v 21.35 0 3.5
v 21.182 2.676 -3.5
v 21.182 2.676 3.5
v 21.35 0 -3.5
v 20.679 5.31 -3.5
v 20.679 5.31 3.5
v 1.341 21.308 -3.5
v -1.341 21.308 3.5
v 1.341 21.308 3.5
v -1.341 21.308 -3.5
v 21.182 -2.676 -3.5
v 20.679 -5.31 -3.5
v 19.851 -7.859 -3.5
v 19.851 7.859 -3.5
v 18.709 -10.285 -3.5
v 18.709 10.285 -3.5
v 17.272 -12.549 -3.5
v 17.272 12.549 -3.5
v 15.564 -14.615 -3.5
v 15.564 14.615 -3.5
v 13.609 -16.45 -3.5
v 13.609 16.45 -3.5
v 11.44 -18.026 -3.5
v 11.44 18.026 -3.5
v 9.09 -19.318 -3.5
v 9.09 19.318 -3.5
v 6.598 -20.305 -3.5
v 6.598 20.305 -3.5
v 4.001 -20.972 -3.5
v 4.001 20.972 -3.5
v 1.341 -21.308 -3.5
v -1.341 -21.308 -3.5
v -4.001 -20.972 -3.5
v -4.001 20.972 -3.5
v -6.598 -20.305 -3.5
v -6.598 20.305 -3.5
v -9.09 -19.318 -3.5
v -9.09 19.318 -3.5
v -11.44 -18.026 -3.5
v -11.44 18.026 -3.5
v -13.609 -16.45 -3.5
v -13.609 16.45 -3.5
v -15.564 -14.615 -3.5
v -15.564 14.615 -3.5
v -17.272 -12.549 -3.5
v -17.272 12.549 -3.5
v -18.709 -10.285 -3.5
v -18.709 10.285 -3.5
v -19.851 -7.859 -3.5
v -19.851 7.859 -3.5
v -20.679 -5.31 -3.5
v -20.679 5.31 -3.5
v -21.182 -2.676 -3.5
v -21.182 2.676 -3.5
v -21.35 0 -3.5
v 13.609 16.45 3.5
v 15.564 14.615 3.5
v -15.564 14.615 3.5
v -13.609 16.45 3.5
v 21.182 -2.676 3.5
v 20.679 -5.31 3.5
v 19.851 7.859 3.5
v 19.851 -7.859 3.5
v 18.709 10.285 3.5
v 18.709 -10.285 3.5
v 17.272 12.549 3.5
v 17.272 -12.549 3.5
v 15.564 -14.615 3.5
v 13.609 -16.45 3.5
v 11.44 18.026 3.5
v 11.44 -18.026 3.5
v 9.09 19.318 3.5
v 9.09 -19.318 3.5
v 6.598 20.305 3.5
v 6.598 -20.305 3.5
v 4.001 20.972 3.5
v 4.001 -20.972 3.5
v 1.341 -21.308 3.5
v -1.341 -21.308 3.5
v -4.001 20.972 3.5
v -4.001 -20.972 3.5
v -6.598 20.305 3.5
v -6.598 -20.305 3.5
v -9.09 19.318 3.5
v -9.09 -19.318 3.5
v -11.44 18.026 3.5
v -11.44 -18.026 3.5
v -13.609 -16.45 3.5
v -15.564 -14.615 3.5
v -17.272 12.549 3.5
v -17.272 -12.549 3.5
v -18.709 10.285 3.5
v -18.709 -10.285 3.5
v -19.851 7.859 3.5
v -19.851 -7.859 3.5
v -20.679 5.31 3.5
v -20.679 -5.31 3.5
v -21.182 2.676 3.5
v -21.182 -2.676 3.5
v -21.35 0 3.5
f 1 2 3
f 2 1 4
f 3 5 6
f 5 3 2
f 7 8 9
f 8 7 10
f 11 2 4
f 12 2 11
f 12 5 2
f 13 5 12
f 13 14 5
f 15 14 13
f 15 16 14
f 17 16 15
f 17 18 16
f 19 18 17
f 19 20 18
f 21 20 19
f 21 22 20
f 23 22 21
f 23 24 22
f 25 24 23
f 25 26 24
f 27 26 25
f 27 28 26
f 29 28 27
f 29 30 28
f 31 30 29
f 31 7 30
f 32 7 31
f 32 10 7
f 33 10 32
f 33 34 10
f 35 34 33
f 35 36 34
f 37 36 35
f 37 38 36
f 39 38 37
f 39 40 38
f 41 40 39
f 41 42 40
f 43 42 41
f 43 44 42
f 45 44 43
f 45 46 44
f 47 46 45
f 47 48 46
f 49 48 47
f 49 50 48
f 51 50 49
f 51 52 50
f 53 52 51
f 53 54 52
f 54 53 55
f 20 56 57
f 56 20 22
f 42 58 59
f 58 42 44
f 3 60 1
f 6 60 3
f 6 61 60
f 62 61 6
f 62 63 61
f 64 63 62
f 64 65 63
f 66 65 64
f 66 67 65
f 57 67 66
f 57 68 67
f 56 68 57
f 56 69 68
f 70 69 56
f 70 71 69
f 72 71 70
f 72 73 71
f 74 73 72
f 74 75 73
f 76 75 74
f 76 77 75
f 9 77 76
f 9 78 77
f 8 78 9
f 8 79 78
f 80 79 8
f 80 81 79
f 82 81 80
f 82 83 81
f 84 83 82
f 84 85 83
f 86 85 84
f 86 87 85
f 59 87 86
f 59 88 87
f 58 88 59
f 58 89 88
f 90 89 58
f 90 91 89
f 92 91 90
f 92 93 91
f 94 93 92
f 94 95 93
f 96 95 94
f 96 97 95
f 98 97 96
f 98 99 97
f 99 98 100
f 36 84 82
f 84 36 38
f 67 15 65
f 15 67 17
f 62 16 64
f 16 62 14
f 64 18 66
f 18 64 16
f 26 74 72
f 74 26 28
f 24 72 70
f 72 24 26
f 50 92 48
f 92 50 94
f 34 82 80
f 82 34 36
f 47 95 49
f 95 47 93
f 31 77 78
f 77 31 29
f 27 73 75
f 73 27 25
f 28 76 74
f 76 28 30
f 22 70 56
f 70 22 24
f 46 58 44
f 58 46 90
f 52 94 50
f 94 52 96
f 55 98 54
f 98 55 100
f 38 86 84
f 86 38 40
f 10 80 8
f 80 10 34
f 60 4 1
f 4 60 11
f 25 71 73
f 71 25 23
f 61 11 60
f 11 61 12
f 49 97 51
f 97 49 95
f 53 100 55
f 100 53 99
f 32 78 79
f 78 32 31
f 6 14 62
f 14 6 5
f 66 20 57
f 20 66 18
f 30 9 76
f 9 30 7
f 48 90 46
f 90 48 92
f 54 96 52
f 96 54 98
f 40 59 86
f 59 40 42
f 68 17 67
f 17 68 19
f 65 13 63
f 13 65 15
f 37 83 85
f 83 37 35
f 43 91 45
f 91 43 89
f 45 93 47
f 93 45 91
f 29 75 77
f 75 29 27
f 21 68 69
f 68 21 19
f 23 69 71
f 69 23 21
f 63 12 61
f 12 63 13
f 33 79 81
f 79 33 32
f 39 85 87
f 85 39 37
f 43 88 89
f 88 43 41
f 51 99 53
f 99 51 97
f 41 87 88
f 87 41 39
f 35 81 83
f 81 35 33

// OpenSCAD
$fn = 50;


difference() {
	union() {
		translate(v = [0, 0, -3.5000000000]) {
			cylinder(h = 7, r = 21.3500000000);
		}
	}
	union() {
		translate(v = [0, 0, -100.0000000000]) {
			cylinder(h = 200, r = 0);
		}
	}
}
